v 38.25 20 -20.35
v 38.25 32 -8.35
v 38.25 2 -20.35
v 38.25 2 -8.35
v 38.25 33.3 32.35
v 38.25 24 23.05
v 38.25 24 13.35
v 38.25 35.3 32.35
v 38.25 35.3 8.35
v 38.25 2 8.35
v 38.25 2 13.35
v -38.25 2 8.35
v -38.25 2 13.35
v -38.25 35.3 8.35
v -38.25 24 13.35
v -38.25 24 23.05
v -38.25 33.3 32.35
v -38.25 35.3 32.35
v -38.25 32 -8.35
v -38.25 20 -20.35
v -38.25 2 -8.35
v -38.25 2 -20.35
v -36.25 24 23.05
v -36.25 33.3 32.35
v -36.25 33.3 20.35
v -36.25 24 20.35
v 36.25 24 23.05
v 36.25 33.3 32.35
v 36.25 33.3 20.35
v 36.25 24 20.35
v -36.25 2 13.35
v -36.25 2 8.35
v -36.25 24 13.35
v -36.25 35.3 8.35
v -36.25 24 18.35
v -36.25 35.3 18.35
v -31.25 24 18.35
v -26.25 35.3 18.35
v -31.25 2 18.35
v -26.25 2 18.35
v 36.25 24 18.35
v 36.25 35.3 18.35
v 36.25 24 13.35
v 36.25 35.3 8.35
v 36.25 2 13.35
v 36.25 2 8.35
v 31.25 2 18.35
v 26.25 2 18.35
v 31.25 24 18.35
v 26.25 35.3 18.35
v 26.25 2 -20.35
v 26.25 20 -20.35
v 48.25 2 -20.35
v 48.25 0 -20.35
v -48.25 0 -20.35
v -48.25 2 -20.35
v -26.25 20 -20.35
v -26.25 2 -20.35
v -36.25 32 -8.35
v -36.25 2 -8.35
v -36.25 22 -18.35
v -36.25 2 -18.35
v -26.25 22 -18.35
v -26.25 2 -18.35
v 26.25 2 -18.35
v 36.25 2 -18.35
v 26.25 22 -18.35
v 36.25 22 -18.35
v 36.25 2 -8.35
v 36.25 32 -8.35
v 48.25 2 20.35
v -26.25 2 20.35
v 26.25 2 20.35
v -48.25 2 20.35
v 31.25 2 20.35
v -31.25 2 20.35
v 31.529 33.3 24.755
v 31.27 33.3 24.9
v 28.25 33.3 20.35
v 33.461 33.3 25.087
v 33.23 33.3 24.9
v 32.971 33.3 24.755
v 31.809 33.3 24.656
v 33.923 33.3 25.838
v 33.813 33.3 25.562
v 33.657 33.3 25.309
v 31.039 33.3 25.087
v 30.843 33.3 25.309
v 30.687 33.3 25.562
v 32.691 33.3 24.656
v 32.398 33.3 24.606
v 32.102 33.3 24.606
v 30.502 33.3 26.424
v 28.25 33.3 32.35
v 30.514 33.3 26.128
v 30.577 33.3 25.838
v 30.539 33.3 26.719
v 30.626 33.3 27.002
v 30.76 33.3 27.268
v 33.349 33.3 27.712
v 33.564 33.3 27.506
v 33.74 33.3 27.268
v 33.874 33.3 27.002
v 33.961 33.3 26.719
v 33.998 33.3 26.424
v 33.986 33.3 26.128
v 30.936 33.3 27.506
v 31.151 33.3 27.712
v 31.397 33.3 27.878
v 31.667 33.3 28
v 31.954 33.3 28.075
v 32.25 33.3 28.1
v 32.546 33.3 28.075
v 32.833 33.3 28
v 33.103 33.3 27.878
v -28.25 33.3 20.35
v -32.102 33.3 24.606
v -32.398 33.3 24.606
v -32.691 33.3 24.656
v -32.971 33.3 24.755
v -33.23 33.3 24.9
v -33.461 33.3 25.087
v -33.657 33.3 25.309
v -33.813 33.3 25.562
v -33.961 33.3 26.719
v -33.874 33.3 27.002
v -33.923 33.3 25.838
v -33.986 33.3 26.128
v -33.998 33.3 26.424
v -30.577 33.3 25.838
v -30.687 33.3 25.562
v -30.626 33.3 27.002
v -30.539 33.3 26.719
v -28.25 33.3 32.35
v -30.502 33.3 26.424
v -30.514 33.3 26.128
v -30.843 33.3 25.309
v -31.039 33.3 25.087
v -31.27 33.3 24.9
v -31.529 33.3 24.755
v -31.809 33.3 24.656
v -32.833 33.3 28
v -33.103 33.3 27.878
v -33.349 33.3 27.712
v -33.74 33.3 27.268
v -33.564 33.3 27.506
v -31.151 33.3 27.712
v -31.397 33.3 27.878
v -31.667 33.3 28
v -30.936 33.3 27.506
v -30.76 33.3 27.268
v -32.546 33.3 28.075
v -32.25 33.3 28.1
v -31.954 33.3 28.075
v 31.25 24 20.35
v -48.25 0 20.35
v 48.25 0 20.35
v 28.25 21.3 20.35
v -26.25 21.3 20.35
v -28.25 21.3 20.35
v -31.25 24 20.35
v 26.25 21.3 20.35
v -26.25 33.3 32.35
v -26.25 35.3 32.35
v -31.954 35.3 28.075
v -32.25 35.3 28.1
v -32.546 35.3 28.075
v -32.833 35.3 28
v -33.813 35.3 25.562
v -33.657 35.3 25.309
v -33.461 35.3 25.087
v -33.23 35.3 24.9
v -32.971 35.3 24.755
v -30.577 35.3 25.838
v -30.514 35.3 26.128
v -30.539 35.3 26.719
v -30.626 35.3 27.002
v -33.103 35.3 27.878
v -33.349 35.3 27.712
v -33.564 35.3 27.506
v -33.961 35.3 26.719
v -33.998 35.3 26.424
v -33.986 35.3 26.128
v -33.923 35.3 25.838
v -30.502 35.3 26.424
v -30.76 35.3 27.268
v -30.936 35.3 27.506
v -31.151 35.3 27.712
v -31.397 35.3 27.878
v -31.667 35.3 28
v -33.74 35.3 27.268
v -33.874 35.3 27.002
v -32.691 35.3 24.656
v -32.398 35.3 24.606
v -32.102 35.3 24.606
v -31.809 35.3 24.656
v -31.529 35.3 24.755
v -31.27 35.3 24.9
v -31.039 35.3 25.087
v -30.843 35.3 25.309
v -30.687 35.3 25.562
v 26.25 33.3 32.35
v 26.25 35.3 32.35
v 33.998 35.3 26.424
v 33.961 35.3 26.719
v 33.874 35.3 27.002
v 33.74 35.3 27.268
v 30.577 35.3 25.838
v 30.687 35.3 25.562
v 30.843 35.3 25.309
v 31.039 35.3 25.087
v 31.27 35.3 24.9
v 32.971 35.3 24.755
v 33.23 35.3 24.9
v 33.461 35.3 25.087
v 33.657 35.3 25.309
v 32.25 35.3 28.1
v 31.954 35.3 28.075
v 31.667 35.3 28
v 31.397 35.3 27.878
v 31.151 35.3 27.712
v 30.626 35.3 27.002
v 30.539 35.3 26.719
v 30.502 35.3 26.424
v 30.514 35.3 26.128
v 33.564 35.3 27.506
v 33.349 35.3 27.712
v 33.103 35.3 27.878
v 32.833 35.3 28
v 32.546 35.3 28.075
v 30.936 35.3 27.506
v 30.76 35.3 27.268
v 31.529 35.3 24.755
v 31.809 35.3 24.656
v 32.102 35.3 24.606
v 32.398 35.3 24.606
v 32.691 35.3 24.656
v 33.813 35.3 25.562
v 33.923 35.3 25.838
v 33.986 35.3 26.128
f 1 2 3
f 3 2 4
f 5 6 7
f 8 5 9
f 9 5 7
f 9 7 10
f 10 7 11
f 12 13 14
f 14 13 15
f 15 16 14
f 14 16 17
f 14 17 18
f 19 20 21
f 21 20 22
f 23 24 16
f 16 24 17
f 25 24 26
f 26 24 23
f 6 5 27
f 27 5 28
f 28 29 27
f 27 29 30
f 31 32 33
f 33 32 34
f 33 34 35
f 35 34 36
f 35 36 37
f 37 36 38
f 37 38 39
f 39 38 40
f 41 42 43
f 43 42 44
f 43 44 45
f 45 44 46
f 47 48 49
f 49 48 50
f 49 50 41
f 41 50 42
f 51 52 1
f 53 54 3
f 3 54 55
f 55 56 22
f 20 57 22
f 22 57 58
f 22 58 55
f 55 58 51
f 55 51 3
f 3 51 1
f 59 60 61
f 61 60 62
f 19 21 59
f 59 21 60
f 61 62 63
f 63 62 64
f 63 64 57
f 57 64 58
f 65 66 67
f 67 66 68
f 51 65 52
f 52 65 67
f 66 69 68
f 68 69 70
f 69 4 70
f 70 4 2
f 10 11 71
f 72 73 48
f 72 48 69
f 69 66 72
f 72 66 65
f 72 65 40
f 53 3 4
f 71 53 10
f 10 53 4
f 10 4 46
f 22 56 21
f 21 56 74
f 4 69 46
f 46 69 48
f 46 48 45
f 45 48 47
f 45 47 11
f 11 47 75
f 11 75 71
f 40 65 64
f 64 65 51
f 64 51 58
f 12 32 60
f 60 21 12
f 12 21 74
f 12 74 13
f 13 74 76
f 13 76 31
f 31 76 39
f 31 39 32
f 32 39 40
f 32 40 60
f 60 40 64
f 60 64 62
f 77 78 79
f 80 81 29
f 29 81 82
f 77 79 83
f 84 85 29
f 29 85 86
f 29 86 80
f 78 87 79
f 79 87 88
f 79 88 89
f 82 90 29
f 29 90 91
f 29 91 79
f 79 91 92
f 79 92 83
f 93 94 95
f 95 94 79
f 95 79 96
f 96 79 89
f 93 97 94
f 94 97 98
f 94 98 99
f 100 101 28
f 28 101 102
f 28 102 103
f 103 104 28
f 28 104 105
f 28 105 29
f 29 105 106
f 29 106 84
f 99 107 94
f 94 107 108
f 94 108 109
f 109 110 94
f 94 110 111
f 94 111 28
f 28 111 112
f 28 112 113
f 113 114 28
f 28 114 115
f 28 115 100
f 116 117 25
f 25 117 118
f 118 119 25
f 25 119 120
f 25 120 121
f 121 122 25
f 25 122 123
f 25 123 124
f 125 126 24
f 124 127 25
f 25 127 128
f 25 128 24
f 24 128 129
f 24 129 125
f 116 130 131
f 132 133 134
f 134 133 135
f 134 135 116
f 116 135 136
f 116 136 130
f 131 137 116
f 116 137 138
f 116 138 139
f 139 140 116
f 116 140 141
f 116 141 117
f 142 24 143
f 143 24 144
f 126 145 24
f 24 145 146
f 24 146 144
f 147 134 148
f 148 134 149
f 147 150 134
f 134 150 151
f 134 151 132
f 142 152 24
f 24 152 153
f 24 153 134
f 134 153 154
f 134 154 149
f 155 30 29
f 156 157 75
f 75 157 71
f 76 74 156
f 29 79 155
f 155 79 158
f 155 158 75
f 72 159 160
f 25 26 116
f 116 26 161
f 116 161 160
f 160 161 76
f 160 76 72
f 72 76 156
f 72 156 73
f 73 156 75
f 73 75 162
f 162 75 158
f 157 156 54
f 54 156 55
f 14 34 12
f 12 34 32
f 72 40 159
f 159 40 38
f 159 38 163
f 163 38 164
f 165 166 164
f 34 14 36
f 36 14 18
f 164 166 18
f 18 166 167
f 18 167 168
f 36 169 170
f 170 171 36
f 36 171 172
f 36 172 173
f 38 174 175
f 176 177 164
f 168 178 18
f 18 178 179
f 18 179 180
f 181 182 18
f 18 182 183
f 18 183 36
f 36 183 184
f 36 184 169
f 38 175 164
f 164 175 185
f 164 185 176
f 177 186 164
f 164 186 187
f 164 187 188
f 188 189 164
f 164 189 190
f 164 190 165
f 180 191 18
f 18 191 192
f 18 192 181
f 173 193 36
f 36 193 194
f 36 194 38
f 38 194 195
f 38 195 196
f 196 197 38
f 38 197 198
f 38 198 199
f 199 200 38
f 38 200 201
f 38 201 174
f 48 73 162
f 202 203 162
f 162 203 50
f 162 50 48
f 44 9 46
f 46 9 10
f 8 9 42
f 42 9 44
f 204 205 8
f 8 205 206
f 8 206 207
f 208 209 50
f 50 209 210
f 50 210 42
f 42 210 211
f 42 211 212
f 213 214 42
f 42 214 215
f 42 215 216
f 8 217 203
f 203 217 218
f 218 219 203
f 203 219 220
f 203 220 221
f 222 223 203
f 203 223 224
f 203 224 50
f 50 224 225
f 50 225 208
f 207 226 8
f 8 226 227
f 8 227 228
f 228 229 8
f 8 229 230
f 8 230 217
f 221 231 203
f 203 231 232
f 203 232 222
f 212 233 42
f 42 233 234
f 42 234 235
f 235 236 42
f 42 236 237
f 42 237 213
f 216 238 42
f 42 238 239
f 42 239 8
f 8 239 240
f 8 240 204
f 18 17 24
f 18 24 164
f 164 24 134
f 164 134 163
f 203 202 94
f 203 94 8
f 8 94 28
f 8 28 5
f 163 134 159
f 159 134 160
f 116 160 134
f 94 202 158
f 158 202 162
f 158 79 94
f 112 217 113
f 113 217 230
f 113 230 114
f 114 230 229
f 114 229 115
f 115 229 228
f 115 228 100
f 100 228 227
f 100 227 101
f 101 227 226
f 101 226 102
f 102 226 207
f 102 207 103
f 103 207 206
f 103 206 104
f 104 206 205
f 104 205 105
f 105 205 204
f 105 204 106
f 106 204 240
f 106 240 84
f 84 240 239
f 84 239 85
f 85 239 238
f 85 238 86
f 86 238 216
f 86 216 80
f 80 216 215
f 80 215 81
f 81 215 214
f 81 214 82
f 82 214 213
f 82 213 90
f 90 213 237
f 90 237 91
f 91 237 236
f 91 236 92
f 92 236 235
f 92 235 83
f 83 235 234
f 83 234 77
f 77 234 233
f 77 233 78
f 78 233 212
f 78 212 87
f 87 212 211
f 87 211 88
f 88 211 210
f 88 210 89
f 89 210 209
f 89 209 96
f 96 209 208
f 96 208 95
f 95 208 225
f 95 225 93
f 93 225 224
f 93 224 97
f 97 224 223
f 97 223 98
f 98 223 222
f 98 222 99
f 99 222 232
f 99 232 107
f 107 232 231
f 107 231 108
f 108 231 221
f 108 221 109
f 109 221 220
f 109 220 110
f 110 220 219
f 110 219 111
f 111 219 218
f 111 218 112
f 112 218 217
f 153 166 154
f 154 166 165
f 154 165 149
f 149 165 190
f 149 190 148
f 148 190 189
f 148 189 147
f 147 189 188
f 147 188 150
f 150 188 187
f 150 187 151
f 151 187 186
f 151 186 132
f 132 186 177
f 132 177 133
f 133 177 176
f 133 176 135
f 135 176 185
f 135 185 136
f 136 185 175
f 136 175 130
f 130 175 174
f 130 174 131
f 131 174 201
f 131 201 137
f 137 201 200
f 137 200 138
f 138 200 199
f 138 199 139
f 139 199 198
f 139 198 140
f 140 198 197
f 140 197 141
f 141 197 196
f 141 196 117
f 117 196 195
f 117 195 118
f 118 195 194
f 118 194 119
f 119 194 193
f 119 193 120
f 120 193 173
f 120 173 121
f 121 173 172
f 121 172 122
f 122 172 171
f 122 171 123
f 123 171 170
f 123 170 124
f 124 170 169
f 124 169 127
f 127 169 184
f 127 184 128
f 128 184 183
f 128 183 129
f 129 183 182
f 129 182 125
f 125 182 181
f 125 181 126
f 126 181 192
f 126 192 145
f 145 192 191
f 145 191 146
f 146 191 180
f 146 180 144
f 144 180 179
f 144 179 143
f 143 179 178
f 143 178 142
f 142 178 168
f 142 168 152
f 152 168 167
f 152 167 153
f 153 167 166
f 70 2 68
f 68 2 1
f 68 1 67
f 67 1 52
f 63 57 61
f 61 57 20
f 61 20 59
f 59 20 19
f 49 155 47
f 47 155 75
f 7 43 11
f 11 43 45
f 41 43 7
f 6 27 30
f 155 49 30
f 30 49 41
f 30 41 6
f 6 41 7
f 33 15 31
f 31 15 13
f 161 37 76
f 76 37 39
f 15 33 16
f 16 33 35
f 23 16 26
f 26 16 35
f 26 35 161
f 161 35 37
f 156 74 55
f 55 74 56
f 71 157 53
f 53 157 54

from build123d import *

# Parameters (mm, degrees)
CROQUIS1_W               = 76.5
CROQUIS1_H               = 40.7
SALIENTE_EXTRUIR1_DEPTH  = 2
CROQUIS2_W               = 2
CROQUIS2_H               = 5
CROQUIS2_W_2             = 5
CROQUIS2_H_2             = 2
SALIENTE_EXTRUIR2_DEPTH  = 33.3
CROQUIS3_W               = 12
CROQUIS3_H               = 2
SALIENTE_EXTRUIR3_DEPTH  = 12
NERVIO2_REACH            = 92.249
CROQUIS4_WALL_W          = 199.468346668
CROQUIS4_WALL_H          = 2
NERVIO7_REACH            = 82.33
CROQUIS5_WALL_W          = 179.62998513
CROQUIS5_WALL_H          = 2
NERVIO8_REACH            = 82.33
CROQUIS6_WALL_W          = 179.62998513
CROQUIS6_WALL_H          = 2
NERVIO9_REACH            = 92.249
CROQUIS7_WALL_W          = 199.468346668
CROQUIS7_WALL_H          = 2
CROQUIS8_R               = 1.75
CORTAR_EXTRUIR2_DEPTH    = 12
CROQUIS9_W               = 5
CROQUIS9_H               = 2
SALIENTE_EXTRUIR4_DEPTH  = 8
CROQUIS10_W              = 5
CROQUIS10_H              = 2
SALIENTE_EXTRUIR5_DEPTH  = 8
CROQUIS11_W              = 5
CROQUIS11_H              = 2
SALIENTE_EXTRUIR7_DEPTH  = 8
SALIENTE_EXTRUIR8_DEPTH  = 33.3
CORTAR_EXTRUIR5_START    = 8
CORTAR_EXTRUIR5_DEPTH    = 106.122924688
CORTAR_EXTRUIR6_DEPTH    = 22
CROQUIS15_W              = 2
CROQUIS15_H              = 2.7
CORTAR_EXTRUIR7_DEPTH    = 15
CROQUIS16_W              = 40.7
CROQUIS16_H              = 2
SALIENTE_EXTRUIR9_DEPTH  = 10
CROQUIS17_W              = 40.7
CROQUIS17_H              = 2
SALIENTE_EXTRUIR10_DEPTH = 10


with BuildPart() as part:
    # Croquis1 → Saliente-Extruir1 (new body)
    with BuildSketch(Plane(origin=(0, 0, 0), x_dir=(1, 0, 0), z_dir=(0, 1, 0))):
        Rectangle(CROQUIS1_W, CROQUIS1_H)
    extrude(amount=SALIENTE_EXTRUIR1_DEPTH)

    # Croquis2 → Saliente-Extruir2 (add)
    with BuildSketch(Plane(origin=(0, 2, 0), x_dir=(1, 0, 0), z_dir=(0, 1, 0))):
        Polygon((-36.25, -8.35), (-38.25, -8.35), (-38.25, -20.35), (-26.25, -20.35), (-26.25, -18.35), (-36.25, -18.35), align=None)
        with Locations((-37.25, 10.85)):
            Rectangle(CROQUIS2_W, CROQUIS2_H)
        with Locations((-28.75, 19.35)):
            Rectangle(CROQUIS2_W_2, CROQUIS2_H_2)
        with Locations((28.75, 19.35)):
            Rectangle(CROQUIS2_W_2, CROQUIS2_H_2)
        with Locations((37.25, 10.85)):
            Rectangle(CROQUIS2_W, CROQUIS2_H)
        Polygon((38.25, -20.35), (38.25, -8.35), (36.25, -8.35), (36.25, -18.35), (26.25, -18.35), (26.25, -20.35), align=None)
    extrude(amount=SALIENTE_EXTRUIR2_DEPTH)

    # Croquis3 → Saliente-Extruir3 (add)
    with BuildSketch(Plane.XY.offset(20.35)):
        with Locations((-32.25, 34.3)):
            Rectangle(CROQUIS3_W, CROQUIS3_H)
        with Locations((32.25, 34.3)):
            Rectangle(CROQUIS3_W, CROQUIS3_H)
    extrude(amount=SALIENTE_EXTRUIR3_DEPTH)

    # Croquis4 wall → Nervio2 (add, up to next)
    with BuildSketch(Plane(origin=(-38.25, 27.3, 26.35), x_dir=(0, -0.707106781187, -0.707106781187), z_dir=(0, -0.707106781187, 0.707106781187)), mode=Mode.PRIVATE) as nervio2_sk1:
        with Locations((0, 1)):
            Rectangle(CROQUIS4_WALL_W, CROQUIS4_WALL_H)
    nervio2_tool1 = extrude(nervio2_sk1.sketch, amount=-NERVIO2_REACH, mode=Mode.PRIVATE) - part.part
    add(nervio2_tool1.solids().sort_by_distance((-38.25, 27.3, 26.35))[0])

    # Croquis5 wall → Nervio7 (add, up to next)
    with BuildSketch(Plane(origin=(-26.25, 27.3, 26.35), x_dir=(0, -0.707106781187, -0.707106781187), z_dir=(0, 0.707106781187, -0.707106781187)), mode=Mode.PRIVATE) as nervio7_sk1:
        with Locations((0, 1)):
            Rectangle(CROQUIS5_WALL_W, CROQUIS5_WALL_H)
    nervio7_tool1 = extrude(nervio7_sk1.sketch, amount=NERVIO7_REACH, mode=Mode.PRIVATE) - part.part
    add(nervio7_tool1.solids().sort_by_distance((-26.25, 27.3, 26.35))[0])

    # Croquis6 wall → Nervio8 (add, up to next)
    with BuildSketch(Plane(origin=(26.25, 27.3, 26.35), x_dir=(0, -0.707106781187, -0.707106781187), z_dir=(0, -0.707106781187, 0.707106781187)), mode=Mode.PRIVATE) as nervio8_sk1:
        with Locations((0, 1)):
            Rectangle(CROQUIS6_WALL_W, CROQUIS6_WALL_H)
    nervio8_tool1 = extrude(nervio8_sk1.sketch, amount=-NERVIO8_REACH, mode=Mode.PRIVATE) - part.part
    add(nervio8_tool1.solids().sort_by_distance((26.25, 27.3, 26.35))[0])

    # Croquis7 wall → Nervio9 (add, up to next)
    with BuildSketch(Plane(origin=(38.25, 27.3, 26.35), x_dir=(0, -0.707106781187, -0.707106781187), z_dir=(0, 0.707106781187, -0.707106781187)), mode=Mode.PRIVATE) as nervio9_sk1:
        with Locations((0, 1)):
            Rectangle(CROQUIS7_WALL_W, CROQUIS7_WALL_H)
    nervio9_tool1 = extrude(nervio9_sk1.sketch, amount=NERVIO9_REACH, mode=Mode.PRIVATE) - part.part
    add(nervio9_tool1.solids().sort_by_distance((38.25, 27.3, 26.35))[0])

    # Croquis8 → Cortar-Extruir2 (cut)
    with BuildSketch(Plane(origin=(0, 35.3, 0), x_dir=(1, 0, 0), z_dir=(0, 1, 0))):
        with Locations(Location((-32.25, -26.35, 0), (0, 0, 270))):
            Circle(CROQUIS8_R)
        with Locations(Location((32.25, -26.35, 0), (0, 0, 270))):
            Circle(CROQUIS8_R)
    extrude(amount=-CORTAR_EXTRUIR2_DEPTH, mode=Mode.SUBTRACT)

    # Croquis9 → Saliente-Extruir4 (add)
    with BuildSketch(Plane(origin=(38.25, 0, 0), x_dir=(0, 0, -1), z_dir=(1, 0, 0))):
        with Locations((10.85, 34.3)):
            Rectangle(CROQUIS9_W, CROQUIS9_H)
    extrude(amount=SALIENTE_EXTRUIR4_DEPTH)

    # Croquis10 → Saliente-Extruir5 (add)
    with BuildSketch(Plane.ZY.offset(38.25)):
        with Locations((-10.85, 34.3)):
            Rectangle(CROQUIS10_W, CROQUIS10_H)
    extrude(amount=SALIENTE_EXTRUIR5_DEPTH)

    # Croquis11 → Saliente-Extruir7 (add)
    with BuildSketch(Plane(origin=(0, 0, -20.35), x_dir=(-1, 0, 0), z_dir=(0, 0, -1))):
        with Locations((-28.75, 34.3)):
            Rectangle(CROQUIS11_W, CROQUIS11_H)
        with Locations((28.75, 34.3)):
            Rectangle(CROQUIS11_W, CROQUIS11_H)
    extrude(amount=SALIENTE_EXTRUIR7_DEPTH)

    # Croquis13 → Saliente-Extruir8 (add)
    with BuildSketch(Plane(origin=(0, 2, 0), x_dir=(1, 0, 0), z_dir=(0, 1, 0))):
        Polygon((-38.25, 13.35), (-38.25, 20.35), (-31.25, 20.35), (-31.25, 18.35), (-36.25, 18.35), (-36.25, 13.35), align=None)
        Polygon((31.25, 20.35), (31.25, 18.35), (36.25, 18.35), (36.25, 13.35), (38.25, 13.35), (38.25, 20.35), align=None)
    extrude(amount=SALIENTE_EXTRUIR8_DEPTH)

    # Croquis12 → Cortar-Extruir5 (cut, through all)
    with BuildSketch(Plane.ZY.offset(38.25).offset(CORTAR_EXTRUIR5_START)):
        Polygon((-8.35, 32), (-8.35, 35.3), (-28.35, 35.3), (-28.35, 12), align=None)
    extrude(amount=-CORTAR_EXTRUIR5_DEPTH, mode=Mode.SUBTRACT)

    # Croquis14 → Cortar-Extruir6 (cut)
    with BuildSketch(Plane(origin=(0, 2, 0), x_dir=(1, 0, 0), z_dir=(0, 1, 0))):
        Polygon((-36.25, -13.35), (-38.25, -13.35), (-38.25, -20.35), (-31.25, -20.35), (-31.25, -18.35), (-36.25, -18.35), align=None)
        Polygon((31.25, -18.35), (31.25, -20.35), (38.25, -20.35), (38.25, -13.35), (36.25, -13.35), (36.25, -18.35), align=None)
    extrude(amount=CORTAR_EXTRUIR6_DEPTH, mode=Mode.SUBTRACT)

    # Croquis15 → Cortar-Extruir7 (cut)
    with BuildSketch(Plane.XY.offset(20.35)):
        with Locations((-37.25, 22.65)):
            Rectangle(CROQUIS15_W, CROQUIS15_H)
        with Locations((37.25, 22.65)):
            Rectangle(CROQUIS15_W, CROQUIS15_H)
    extrude(amount=CORTAR_EXTRUIR7_DEPTH, mode=Mode.SUBTRACT)

    # Croquis16 → Saliente-Extruir9 (add)
    with BuildSketch(Plane.ZY.offset(38.25)):
        with Locations((0, 1)):
            Rectangle(CROQUIS16_W, CROQUIS16_H)
    extrude(amount=SALIENTE_EXTRUIR9_DEPTH)

    # Croquis17 → Saliente-Extruir10 (add)
    with BuildSketch(Plane(origin=(38.25, 0, 0), x_dir=(0, 0, -1), z_dir=(1, 0, 0))):
        with Locations((0, 1)):
            Rectangle(CROQUIS17_W, CROQUIS17_H)
    extrude(amount=SALIENTE_EXTRUIR10_DEPTH)


solid = part.part
